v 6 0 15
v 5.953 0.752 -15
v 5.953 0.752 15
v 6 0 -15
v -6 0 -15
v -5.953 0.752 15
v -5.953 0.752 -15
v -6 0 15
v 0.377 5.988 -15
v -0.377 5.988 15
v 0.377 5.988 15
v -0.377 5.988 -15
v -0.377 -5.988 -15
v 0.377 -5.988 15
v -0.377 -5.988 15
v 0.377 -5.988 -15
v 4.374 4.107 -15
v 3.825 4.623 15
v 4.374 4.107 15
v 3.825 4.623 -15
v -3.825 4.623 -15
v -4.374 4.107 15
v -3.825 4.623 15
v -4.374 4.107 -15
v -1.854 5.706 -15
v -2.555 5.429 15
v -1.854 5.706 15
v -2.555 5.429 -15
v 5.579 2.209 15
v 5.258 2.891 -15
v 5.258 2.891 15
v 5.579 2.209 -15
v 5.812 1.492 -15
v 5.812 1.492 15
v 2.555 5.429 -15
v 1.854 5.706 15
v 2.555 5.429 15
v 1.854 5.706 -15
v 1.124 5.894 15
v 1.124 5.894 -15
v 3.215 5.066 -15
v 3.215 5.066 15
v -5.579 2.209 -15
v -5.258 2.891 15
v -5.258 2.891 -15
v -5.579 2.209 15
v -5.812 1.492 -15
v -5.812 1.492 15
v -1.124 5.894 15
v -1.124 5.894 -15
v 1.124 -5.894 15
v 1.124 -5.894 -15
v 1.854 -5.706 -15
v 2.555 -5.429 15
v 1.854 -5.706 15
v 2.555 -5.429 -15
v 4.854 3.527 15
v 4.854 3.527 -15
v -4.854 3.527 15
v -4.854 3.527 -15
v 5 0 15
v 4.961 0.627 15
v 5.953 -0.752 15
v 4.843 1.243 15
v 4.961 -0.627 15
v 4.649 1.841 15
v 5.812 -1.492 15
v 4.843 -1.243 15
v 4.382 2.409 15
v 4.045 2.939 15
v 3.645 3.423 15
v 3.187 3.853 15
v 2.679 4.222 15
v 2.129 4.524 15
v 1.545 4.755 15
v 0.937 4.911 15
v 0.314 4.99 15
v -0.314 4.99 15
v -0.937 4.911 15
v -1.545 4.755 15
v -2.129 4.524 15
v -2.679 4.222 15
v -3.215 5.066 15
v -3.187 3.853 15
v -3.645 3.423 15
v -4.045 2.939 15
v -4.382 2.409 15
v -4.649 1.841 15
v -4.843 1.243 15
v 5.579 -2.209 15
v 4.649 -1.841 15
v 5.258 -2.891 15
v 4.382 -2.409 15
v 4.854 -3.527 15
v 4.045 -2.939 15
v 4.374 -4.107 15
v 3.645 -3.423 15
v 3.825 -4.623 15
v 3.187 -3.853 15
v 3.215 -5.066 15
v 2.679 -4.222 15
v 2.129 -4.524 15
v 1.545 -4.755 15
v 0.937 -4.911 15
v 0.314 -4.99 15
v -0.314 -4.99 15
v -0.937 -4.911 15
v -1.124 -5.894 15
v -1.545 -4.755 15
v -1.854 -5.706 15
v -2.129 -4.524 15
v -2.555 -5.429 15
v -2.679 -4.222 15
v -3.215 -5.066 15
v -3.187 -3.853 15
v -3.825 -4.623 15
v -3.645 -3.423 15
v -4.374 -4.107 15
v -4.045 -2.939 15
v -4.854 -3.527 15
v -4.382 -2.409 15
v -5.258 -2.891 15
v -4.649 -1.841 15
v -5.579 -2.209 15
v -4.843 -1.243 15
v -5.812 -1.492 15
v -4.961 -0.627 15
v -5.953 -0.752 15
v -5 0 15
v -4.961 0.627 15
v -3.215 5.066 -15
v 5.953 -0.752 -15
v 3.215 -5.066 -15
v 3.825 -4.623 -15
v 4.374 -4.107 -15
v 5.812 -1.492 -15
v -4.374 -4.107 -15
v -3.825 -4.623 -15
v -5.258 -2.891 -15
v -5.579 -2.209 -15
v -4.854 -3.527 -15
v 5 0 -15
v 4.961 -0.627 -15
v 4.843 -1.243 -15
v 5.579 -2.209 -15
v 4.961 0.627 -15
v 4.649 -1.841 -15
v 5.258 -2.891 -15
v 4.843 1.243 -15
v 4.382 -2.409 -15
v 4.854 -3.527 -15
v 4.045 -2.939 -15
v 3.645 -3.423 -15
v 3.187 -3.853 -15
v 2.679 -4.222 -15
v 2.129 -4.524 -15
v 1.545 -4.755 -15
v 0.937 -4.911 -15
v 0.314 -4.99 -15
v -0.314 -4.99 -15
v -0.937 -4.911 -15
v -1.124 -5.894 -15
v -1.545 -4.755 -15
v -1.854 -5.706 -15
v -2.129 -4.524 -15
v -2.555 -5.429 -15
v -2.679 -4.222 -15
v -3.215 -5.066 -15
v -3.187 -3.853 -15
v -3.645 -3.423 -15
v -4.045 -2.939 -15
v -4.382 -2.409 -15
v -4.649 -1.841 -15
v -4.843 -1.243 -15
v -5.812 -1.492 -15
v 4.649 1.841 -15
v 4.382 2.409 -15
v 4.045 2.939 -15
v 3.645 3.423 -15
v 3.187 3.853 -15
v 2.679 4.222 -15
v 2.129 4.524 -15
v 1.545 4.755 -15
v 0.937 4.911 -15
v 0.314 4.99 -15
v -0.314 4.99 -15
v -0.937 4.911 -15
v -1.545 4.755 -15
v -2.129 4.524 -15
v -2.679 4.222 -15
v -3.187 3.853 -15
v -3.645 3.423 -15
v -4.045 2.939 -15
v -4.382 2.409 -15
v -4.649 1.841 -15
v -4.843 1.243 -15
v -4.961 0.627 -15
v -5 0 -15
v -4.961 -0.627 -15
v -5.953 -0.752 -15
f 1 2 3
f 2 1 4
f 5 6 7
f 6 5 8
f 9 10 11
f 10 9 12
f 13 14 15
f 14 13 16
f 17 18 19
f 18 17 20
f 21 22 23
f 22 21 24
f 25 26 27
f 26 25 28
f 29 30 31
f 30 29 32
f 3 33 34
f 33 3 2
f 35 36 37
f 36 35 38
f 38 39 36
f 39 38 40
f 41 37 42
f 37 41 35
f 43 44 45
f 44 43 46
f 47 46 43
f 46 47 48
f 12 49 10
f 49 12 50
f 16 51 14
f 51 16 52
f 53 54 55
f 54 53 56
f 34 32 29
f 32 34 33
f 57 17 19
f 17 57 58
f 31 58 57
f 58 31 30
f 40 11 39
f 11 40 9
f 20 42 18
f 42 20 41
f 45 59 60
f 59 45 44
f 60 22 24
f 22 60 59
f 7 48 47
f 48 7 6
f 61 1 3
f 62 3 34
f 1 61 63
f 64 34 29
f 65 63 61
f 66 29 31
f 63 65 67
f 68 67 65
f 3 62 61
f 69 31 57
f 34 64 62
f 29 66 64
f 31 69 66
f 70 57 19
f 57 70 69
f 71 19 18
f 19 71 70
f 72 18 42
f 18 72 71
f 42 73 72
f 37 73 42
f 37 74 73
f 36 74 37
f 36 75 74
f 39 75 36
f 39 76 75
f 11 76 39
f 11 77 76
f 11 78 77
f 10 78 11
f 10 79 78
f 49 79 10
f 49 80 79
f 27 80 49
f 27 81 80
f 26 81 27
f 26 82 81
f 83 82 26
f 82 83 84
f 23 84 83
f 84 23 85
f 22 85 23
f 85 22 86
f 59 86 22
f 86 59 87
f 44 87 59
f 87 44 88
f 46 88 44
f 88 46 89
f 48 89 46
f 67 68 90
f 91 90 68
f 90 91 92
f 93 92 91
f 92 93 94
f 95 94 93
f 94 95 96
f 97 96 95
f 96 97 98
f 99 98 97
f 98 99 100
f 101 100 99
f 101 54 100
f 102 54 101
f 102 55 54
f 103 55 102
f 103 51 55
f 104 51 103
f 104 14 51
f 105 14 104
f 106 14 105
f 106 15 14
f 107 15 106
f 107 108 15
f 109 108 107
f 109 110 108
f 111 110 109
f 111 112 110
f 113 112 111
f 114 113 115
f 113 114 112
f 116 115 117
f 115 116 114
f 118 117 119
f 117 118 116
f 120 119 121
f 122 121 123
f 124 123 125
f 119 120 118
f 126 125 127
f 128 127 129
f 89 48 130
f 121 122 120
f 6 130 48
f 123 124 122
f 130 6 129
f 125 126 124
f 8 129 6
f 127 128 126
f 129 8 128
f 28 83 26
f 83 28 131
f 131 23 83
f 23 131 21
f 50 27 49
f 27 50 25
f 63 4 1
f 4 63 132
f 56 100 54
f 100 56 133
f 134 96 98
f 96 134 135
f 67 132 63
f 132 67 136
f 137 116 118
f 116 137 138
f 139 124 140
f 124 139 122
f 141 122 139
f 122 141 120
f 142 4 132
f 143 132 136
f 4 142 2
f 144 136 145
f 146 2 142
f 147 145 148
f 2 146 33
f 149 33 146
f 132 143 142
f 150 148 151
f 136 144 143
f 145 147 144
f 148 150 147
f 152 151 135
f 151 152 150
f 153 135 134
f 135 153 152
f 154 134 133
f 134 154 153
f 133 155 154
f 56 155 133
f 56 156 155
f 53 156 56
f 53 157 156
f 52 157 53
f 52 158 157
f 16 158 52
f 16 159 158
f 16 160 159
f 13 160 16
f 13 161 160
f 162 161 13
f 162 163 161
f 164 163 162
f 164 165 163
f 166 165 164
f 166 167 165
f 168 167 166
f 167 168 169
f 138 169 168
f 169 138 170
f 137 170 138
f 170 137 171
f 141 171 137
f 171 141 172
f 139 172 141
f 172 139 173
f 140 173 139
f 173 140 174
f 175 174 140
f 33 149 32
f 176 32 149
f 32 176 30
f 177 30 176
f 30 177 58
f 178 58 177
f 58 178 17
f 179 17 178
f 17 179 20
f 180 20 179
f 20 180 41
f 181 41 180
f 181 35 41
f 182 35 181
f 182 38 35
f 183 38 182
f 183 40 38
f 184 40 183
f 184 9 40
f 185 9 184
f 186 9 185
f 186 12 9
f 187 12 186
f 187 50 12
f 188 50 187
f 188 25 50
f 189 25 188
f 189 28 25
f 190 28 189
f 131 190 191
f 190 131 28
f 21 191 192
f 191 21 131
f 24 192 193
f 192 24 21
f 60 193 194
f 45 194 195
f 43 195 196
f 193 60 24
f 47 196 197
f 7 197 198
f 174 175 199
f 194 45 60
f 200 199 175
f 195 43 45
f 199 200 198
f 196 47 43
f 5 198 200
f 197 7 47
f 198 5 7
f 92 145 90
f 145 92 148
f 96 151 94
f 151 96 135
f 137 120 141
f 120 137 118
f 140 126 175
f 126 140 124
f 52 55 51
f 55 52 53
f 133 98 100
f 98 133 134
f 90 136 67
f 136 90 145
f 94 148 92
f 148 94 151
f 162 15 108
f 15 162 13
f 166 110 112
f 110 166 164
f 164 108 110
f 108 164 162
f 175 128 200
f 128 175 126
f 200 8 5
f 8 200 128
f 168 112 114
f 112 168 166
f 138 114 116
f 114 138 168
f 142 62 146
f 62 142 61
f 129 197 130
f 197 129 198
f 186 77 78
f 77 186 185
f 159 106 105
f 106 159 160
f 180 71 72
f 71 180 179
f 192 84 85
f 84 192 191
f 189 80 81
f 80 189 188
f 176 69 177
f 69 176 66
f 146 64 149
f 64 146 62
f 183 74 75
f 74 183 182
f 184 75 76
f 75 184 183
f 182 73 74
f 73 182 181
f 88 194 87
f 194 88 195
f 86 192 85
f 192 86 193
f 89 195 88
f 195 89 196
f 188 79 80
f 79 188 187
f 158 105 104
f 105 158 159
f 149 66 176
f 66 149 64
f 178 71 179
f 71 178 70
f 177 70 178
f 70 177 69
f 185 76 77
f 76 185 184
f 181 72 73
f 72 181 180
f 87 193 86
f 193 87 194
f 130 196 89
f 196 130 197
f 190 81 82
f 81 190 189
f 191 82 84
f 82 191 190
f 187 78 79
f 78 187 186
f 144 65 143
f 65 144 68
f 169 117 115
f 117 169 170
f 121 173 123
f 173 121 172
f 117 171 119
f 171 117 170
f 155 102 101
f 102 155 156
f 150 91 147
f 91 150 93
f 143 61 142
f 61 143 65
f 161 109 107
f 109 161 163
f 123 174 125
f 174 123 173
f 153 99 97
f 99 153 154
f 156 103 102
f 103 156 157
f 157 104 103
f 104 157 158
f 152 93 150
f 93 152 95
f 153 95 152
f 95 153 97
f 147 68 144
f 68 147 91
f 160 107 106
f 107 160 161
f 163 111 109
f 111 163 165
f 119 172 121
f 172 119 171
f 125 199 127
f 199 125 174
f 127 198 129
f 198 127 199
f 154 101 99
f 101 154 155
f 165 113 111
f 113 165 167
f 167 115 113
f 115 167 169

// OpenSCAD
$fn = 50;


difference() {
	union() {
		translate(v = [0, 0, -15.0000000000]) {
			cylinder(h = 30, r = 6.0000000000);
		}
	}
	union() {
		translate(v = [0, 0, -100.0000000000]) {
			cylinder(h = 200, r = 5);
		}
	}
}
